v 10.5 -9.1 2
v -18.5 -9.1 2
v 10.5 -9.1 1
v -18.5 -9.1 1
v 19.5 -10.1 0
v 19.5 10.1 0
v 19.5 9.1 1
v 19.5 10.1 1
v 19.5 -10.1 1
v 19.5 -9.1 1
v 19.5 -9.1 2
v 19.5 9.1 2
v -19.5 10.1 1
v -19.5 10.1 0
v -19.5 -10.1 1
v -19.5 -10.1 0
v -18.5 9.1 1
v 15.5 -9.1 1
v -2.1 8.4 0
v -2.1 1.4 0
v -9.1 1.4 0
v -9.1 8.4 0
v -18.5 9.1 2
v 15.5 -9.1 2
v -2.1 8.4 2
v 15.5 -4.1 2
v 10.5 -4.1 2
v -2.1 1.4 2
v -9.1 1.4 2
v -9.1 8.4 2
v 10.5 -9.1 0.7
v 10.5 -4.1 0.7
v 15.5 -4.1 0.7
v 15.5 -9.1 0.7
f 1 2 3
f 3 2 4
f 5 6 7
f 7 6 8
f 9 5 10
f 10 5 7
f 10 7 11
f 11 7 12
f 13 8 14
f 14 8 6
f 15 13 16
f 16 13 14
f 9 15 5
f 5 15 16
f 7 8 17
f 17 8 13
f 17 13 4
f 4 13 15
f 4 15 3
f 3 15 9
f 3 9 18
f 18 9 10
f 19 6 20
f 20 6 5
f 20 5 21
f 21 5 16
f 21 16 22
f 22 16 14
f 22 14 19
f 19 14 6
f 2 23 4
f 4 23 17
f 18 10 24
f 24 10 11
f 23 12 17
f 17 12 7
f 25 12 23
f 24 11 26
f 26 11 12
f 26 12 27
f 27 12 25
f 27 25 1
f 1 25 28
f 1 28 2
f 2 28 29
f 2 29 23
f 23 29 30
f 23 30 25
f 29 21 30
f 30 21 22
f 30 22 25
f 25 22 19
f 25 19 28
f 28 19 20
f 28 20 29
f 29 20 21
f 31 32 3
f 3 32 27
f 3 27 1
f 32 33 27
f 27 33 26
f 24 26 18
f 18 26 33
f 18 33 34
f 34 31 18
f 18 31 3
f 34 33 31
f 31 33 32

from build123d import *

# Parameters (mm, degrees)
SKETCH1_W           = 39
SKETCH1_H           = 20.2
BOSS_EXTRUDE1_DEPTH = 1
SKETCH2_W           = 38
SKETCH2_H           = 18.2
BOSS_EXTRUDE2_DEPTH = 1
SKETCH3_W           = 7
SKETCH3_H           = 7
CUT_EXTRUDE1_DEPTH  = 21
SKETCH4_W           = 5
SKETCH4_H           = 5
CUT_EXTRUDE2_DEPTH  = 1.3


with BuildPart() as part:
    # Sketch1 → Boss-Extrude1 (new body)
    with BuildSketch(Plane.XY):
        Rectangle(SKETCH1_W, SKETCH1_H)
    extrude(amount=BOSS_EXTRUDE1_DEPTH)

    # Sketch2 → Boss-Extrude2 (add)
    with BuildSketch(Plane.XY.offset(1)):
        with Locations((0.5, 0)):
            Rectangle(SKETCH2_W, SKETCH2_H)
    extrude(amount=BOSS_EXTRUDE2_DEPTH)

    # Sketch3 → Cut-Extrude1 (cut)
    with BuildSketch(Plane.XY.offset(2)):
        with Locations((-5.6, 4.9)):
            Rectangle(SKETCH3_W, SKETCH3_H)
    extrude(amount=-CUT_EXTRUDE1_DEPTH, mode=Mode.SUBTRACT)

    # Sketch4 → Cut-Extrude2 (cut)
    with BuildSketch(Plane.XY.offset(2)):
        with Locations((13, -6.6)):
            Rectangle(SKETCH4_W, SKETCH4_H)
    extrude(amount=-CUT_EXTRUDE2_DEPTH, mode=Mode.SUBTRACT)


solid = part.part
